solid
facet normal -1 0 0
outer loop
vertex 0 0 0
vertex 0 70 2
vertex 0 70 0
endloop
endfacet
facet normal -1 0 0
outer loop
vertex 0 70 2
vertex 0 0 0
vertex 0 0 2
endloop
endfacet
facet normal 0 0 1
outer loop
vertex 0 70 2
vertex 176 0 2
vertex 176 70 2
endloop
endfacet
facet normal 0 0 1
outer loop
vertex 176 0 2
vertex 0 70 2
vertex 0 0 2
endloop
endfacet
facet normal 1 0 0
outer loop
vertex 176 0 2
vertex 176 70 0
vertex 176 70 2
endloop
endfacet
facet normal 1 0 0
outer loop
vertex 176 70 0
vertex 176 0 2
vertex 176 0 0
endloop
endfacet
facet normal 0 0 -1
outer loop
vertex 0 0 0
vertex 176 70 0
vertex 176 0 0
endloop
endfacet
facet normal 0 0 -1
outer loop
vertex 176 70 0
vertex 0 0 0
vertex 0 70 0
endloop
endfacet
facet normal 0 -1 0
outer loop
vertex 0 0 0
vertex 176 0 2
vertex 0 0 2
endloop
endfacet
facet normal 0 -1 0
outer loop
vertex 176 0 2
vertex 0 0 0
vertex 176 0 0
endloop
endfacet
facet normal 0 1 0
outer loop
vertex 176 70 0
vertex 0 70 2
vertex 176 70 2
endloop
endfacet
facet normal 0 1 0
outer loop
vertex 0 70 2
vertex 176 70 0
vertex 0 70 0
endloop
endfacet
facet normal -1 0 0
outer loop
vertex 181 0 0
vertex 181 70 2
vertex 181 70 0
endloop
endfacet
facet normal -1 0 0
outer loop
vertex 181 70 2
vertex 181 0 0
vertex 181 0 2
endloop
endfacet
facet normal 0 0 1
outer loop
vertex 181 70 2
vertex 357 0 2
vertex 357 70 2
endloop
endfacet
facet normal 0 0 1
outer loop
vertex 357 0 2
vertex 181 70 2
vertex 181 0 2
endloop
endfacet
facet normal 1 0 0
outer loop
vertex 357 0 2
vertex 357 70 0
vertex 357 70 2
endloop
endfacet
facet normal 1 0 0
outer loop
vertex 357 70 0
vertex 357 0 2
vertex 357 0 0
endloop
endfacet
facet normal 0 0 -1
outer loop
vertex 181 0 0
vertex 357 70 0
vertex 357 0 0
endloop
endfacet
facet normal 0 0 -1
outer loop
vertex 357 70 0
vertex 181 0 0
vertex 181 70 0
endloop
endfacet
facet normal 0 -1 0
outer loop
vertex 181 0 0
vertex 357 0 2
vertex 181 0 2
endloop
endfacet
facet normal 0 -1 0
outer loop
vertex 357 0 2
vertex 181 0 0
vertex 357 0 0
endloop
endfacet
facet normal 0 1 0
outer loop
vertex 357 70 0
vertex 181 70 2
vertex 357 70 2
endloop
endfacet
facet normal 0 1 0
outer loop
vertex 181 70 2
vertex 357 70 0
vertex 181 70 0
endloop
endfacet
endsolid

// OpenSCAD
//alle Maße in mm
Pd = 2; //plattendicke ist 2mm

//Maße Grundplatte
Lg = 180; //Länge Grundplatte
Bg = Lg;  //Breite Grundplatte

//zeichne Grundplatte
//cube(size = [Lg,Bg,Pd], center = false);

//Seitenteil 
Hs1 = 70;  //Höhe
cube (size = [Bg-2*Pd,Hs1,Pd], center = false);
translate([Bg-2*Pd+5,0,0]){cube (size = [Bg-2*Pd,Hs1,Pd], center = false);}

    
